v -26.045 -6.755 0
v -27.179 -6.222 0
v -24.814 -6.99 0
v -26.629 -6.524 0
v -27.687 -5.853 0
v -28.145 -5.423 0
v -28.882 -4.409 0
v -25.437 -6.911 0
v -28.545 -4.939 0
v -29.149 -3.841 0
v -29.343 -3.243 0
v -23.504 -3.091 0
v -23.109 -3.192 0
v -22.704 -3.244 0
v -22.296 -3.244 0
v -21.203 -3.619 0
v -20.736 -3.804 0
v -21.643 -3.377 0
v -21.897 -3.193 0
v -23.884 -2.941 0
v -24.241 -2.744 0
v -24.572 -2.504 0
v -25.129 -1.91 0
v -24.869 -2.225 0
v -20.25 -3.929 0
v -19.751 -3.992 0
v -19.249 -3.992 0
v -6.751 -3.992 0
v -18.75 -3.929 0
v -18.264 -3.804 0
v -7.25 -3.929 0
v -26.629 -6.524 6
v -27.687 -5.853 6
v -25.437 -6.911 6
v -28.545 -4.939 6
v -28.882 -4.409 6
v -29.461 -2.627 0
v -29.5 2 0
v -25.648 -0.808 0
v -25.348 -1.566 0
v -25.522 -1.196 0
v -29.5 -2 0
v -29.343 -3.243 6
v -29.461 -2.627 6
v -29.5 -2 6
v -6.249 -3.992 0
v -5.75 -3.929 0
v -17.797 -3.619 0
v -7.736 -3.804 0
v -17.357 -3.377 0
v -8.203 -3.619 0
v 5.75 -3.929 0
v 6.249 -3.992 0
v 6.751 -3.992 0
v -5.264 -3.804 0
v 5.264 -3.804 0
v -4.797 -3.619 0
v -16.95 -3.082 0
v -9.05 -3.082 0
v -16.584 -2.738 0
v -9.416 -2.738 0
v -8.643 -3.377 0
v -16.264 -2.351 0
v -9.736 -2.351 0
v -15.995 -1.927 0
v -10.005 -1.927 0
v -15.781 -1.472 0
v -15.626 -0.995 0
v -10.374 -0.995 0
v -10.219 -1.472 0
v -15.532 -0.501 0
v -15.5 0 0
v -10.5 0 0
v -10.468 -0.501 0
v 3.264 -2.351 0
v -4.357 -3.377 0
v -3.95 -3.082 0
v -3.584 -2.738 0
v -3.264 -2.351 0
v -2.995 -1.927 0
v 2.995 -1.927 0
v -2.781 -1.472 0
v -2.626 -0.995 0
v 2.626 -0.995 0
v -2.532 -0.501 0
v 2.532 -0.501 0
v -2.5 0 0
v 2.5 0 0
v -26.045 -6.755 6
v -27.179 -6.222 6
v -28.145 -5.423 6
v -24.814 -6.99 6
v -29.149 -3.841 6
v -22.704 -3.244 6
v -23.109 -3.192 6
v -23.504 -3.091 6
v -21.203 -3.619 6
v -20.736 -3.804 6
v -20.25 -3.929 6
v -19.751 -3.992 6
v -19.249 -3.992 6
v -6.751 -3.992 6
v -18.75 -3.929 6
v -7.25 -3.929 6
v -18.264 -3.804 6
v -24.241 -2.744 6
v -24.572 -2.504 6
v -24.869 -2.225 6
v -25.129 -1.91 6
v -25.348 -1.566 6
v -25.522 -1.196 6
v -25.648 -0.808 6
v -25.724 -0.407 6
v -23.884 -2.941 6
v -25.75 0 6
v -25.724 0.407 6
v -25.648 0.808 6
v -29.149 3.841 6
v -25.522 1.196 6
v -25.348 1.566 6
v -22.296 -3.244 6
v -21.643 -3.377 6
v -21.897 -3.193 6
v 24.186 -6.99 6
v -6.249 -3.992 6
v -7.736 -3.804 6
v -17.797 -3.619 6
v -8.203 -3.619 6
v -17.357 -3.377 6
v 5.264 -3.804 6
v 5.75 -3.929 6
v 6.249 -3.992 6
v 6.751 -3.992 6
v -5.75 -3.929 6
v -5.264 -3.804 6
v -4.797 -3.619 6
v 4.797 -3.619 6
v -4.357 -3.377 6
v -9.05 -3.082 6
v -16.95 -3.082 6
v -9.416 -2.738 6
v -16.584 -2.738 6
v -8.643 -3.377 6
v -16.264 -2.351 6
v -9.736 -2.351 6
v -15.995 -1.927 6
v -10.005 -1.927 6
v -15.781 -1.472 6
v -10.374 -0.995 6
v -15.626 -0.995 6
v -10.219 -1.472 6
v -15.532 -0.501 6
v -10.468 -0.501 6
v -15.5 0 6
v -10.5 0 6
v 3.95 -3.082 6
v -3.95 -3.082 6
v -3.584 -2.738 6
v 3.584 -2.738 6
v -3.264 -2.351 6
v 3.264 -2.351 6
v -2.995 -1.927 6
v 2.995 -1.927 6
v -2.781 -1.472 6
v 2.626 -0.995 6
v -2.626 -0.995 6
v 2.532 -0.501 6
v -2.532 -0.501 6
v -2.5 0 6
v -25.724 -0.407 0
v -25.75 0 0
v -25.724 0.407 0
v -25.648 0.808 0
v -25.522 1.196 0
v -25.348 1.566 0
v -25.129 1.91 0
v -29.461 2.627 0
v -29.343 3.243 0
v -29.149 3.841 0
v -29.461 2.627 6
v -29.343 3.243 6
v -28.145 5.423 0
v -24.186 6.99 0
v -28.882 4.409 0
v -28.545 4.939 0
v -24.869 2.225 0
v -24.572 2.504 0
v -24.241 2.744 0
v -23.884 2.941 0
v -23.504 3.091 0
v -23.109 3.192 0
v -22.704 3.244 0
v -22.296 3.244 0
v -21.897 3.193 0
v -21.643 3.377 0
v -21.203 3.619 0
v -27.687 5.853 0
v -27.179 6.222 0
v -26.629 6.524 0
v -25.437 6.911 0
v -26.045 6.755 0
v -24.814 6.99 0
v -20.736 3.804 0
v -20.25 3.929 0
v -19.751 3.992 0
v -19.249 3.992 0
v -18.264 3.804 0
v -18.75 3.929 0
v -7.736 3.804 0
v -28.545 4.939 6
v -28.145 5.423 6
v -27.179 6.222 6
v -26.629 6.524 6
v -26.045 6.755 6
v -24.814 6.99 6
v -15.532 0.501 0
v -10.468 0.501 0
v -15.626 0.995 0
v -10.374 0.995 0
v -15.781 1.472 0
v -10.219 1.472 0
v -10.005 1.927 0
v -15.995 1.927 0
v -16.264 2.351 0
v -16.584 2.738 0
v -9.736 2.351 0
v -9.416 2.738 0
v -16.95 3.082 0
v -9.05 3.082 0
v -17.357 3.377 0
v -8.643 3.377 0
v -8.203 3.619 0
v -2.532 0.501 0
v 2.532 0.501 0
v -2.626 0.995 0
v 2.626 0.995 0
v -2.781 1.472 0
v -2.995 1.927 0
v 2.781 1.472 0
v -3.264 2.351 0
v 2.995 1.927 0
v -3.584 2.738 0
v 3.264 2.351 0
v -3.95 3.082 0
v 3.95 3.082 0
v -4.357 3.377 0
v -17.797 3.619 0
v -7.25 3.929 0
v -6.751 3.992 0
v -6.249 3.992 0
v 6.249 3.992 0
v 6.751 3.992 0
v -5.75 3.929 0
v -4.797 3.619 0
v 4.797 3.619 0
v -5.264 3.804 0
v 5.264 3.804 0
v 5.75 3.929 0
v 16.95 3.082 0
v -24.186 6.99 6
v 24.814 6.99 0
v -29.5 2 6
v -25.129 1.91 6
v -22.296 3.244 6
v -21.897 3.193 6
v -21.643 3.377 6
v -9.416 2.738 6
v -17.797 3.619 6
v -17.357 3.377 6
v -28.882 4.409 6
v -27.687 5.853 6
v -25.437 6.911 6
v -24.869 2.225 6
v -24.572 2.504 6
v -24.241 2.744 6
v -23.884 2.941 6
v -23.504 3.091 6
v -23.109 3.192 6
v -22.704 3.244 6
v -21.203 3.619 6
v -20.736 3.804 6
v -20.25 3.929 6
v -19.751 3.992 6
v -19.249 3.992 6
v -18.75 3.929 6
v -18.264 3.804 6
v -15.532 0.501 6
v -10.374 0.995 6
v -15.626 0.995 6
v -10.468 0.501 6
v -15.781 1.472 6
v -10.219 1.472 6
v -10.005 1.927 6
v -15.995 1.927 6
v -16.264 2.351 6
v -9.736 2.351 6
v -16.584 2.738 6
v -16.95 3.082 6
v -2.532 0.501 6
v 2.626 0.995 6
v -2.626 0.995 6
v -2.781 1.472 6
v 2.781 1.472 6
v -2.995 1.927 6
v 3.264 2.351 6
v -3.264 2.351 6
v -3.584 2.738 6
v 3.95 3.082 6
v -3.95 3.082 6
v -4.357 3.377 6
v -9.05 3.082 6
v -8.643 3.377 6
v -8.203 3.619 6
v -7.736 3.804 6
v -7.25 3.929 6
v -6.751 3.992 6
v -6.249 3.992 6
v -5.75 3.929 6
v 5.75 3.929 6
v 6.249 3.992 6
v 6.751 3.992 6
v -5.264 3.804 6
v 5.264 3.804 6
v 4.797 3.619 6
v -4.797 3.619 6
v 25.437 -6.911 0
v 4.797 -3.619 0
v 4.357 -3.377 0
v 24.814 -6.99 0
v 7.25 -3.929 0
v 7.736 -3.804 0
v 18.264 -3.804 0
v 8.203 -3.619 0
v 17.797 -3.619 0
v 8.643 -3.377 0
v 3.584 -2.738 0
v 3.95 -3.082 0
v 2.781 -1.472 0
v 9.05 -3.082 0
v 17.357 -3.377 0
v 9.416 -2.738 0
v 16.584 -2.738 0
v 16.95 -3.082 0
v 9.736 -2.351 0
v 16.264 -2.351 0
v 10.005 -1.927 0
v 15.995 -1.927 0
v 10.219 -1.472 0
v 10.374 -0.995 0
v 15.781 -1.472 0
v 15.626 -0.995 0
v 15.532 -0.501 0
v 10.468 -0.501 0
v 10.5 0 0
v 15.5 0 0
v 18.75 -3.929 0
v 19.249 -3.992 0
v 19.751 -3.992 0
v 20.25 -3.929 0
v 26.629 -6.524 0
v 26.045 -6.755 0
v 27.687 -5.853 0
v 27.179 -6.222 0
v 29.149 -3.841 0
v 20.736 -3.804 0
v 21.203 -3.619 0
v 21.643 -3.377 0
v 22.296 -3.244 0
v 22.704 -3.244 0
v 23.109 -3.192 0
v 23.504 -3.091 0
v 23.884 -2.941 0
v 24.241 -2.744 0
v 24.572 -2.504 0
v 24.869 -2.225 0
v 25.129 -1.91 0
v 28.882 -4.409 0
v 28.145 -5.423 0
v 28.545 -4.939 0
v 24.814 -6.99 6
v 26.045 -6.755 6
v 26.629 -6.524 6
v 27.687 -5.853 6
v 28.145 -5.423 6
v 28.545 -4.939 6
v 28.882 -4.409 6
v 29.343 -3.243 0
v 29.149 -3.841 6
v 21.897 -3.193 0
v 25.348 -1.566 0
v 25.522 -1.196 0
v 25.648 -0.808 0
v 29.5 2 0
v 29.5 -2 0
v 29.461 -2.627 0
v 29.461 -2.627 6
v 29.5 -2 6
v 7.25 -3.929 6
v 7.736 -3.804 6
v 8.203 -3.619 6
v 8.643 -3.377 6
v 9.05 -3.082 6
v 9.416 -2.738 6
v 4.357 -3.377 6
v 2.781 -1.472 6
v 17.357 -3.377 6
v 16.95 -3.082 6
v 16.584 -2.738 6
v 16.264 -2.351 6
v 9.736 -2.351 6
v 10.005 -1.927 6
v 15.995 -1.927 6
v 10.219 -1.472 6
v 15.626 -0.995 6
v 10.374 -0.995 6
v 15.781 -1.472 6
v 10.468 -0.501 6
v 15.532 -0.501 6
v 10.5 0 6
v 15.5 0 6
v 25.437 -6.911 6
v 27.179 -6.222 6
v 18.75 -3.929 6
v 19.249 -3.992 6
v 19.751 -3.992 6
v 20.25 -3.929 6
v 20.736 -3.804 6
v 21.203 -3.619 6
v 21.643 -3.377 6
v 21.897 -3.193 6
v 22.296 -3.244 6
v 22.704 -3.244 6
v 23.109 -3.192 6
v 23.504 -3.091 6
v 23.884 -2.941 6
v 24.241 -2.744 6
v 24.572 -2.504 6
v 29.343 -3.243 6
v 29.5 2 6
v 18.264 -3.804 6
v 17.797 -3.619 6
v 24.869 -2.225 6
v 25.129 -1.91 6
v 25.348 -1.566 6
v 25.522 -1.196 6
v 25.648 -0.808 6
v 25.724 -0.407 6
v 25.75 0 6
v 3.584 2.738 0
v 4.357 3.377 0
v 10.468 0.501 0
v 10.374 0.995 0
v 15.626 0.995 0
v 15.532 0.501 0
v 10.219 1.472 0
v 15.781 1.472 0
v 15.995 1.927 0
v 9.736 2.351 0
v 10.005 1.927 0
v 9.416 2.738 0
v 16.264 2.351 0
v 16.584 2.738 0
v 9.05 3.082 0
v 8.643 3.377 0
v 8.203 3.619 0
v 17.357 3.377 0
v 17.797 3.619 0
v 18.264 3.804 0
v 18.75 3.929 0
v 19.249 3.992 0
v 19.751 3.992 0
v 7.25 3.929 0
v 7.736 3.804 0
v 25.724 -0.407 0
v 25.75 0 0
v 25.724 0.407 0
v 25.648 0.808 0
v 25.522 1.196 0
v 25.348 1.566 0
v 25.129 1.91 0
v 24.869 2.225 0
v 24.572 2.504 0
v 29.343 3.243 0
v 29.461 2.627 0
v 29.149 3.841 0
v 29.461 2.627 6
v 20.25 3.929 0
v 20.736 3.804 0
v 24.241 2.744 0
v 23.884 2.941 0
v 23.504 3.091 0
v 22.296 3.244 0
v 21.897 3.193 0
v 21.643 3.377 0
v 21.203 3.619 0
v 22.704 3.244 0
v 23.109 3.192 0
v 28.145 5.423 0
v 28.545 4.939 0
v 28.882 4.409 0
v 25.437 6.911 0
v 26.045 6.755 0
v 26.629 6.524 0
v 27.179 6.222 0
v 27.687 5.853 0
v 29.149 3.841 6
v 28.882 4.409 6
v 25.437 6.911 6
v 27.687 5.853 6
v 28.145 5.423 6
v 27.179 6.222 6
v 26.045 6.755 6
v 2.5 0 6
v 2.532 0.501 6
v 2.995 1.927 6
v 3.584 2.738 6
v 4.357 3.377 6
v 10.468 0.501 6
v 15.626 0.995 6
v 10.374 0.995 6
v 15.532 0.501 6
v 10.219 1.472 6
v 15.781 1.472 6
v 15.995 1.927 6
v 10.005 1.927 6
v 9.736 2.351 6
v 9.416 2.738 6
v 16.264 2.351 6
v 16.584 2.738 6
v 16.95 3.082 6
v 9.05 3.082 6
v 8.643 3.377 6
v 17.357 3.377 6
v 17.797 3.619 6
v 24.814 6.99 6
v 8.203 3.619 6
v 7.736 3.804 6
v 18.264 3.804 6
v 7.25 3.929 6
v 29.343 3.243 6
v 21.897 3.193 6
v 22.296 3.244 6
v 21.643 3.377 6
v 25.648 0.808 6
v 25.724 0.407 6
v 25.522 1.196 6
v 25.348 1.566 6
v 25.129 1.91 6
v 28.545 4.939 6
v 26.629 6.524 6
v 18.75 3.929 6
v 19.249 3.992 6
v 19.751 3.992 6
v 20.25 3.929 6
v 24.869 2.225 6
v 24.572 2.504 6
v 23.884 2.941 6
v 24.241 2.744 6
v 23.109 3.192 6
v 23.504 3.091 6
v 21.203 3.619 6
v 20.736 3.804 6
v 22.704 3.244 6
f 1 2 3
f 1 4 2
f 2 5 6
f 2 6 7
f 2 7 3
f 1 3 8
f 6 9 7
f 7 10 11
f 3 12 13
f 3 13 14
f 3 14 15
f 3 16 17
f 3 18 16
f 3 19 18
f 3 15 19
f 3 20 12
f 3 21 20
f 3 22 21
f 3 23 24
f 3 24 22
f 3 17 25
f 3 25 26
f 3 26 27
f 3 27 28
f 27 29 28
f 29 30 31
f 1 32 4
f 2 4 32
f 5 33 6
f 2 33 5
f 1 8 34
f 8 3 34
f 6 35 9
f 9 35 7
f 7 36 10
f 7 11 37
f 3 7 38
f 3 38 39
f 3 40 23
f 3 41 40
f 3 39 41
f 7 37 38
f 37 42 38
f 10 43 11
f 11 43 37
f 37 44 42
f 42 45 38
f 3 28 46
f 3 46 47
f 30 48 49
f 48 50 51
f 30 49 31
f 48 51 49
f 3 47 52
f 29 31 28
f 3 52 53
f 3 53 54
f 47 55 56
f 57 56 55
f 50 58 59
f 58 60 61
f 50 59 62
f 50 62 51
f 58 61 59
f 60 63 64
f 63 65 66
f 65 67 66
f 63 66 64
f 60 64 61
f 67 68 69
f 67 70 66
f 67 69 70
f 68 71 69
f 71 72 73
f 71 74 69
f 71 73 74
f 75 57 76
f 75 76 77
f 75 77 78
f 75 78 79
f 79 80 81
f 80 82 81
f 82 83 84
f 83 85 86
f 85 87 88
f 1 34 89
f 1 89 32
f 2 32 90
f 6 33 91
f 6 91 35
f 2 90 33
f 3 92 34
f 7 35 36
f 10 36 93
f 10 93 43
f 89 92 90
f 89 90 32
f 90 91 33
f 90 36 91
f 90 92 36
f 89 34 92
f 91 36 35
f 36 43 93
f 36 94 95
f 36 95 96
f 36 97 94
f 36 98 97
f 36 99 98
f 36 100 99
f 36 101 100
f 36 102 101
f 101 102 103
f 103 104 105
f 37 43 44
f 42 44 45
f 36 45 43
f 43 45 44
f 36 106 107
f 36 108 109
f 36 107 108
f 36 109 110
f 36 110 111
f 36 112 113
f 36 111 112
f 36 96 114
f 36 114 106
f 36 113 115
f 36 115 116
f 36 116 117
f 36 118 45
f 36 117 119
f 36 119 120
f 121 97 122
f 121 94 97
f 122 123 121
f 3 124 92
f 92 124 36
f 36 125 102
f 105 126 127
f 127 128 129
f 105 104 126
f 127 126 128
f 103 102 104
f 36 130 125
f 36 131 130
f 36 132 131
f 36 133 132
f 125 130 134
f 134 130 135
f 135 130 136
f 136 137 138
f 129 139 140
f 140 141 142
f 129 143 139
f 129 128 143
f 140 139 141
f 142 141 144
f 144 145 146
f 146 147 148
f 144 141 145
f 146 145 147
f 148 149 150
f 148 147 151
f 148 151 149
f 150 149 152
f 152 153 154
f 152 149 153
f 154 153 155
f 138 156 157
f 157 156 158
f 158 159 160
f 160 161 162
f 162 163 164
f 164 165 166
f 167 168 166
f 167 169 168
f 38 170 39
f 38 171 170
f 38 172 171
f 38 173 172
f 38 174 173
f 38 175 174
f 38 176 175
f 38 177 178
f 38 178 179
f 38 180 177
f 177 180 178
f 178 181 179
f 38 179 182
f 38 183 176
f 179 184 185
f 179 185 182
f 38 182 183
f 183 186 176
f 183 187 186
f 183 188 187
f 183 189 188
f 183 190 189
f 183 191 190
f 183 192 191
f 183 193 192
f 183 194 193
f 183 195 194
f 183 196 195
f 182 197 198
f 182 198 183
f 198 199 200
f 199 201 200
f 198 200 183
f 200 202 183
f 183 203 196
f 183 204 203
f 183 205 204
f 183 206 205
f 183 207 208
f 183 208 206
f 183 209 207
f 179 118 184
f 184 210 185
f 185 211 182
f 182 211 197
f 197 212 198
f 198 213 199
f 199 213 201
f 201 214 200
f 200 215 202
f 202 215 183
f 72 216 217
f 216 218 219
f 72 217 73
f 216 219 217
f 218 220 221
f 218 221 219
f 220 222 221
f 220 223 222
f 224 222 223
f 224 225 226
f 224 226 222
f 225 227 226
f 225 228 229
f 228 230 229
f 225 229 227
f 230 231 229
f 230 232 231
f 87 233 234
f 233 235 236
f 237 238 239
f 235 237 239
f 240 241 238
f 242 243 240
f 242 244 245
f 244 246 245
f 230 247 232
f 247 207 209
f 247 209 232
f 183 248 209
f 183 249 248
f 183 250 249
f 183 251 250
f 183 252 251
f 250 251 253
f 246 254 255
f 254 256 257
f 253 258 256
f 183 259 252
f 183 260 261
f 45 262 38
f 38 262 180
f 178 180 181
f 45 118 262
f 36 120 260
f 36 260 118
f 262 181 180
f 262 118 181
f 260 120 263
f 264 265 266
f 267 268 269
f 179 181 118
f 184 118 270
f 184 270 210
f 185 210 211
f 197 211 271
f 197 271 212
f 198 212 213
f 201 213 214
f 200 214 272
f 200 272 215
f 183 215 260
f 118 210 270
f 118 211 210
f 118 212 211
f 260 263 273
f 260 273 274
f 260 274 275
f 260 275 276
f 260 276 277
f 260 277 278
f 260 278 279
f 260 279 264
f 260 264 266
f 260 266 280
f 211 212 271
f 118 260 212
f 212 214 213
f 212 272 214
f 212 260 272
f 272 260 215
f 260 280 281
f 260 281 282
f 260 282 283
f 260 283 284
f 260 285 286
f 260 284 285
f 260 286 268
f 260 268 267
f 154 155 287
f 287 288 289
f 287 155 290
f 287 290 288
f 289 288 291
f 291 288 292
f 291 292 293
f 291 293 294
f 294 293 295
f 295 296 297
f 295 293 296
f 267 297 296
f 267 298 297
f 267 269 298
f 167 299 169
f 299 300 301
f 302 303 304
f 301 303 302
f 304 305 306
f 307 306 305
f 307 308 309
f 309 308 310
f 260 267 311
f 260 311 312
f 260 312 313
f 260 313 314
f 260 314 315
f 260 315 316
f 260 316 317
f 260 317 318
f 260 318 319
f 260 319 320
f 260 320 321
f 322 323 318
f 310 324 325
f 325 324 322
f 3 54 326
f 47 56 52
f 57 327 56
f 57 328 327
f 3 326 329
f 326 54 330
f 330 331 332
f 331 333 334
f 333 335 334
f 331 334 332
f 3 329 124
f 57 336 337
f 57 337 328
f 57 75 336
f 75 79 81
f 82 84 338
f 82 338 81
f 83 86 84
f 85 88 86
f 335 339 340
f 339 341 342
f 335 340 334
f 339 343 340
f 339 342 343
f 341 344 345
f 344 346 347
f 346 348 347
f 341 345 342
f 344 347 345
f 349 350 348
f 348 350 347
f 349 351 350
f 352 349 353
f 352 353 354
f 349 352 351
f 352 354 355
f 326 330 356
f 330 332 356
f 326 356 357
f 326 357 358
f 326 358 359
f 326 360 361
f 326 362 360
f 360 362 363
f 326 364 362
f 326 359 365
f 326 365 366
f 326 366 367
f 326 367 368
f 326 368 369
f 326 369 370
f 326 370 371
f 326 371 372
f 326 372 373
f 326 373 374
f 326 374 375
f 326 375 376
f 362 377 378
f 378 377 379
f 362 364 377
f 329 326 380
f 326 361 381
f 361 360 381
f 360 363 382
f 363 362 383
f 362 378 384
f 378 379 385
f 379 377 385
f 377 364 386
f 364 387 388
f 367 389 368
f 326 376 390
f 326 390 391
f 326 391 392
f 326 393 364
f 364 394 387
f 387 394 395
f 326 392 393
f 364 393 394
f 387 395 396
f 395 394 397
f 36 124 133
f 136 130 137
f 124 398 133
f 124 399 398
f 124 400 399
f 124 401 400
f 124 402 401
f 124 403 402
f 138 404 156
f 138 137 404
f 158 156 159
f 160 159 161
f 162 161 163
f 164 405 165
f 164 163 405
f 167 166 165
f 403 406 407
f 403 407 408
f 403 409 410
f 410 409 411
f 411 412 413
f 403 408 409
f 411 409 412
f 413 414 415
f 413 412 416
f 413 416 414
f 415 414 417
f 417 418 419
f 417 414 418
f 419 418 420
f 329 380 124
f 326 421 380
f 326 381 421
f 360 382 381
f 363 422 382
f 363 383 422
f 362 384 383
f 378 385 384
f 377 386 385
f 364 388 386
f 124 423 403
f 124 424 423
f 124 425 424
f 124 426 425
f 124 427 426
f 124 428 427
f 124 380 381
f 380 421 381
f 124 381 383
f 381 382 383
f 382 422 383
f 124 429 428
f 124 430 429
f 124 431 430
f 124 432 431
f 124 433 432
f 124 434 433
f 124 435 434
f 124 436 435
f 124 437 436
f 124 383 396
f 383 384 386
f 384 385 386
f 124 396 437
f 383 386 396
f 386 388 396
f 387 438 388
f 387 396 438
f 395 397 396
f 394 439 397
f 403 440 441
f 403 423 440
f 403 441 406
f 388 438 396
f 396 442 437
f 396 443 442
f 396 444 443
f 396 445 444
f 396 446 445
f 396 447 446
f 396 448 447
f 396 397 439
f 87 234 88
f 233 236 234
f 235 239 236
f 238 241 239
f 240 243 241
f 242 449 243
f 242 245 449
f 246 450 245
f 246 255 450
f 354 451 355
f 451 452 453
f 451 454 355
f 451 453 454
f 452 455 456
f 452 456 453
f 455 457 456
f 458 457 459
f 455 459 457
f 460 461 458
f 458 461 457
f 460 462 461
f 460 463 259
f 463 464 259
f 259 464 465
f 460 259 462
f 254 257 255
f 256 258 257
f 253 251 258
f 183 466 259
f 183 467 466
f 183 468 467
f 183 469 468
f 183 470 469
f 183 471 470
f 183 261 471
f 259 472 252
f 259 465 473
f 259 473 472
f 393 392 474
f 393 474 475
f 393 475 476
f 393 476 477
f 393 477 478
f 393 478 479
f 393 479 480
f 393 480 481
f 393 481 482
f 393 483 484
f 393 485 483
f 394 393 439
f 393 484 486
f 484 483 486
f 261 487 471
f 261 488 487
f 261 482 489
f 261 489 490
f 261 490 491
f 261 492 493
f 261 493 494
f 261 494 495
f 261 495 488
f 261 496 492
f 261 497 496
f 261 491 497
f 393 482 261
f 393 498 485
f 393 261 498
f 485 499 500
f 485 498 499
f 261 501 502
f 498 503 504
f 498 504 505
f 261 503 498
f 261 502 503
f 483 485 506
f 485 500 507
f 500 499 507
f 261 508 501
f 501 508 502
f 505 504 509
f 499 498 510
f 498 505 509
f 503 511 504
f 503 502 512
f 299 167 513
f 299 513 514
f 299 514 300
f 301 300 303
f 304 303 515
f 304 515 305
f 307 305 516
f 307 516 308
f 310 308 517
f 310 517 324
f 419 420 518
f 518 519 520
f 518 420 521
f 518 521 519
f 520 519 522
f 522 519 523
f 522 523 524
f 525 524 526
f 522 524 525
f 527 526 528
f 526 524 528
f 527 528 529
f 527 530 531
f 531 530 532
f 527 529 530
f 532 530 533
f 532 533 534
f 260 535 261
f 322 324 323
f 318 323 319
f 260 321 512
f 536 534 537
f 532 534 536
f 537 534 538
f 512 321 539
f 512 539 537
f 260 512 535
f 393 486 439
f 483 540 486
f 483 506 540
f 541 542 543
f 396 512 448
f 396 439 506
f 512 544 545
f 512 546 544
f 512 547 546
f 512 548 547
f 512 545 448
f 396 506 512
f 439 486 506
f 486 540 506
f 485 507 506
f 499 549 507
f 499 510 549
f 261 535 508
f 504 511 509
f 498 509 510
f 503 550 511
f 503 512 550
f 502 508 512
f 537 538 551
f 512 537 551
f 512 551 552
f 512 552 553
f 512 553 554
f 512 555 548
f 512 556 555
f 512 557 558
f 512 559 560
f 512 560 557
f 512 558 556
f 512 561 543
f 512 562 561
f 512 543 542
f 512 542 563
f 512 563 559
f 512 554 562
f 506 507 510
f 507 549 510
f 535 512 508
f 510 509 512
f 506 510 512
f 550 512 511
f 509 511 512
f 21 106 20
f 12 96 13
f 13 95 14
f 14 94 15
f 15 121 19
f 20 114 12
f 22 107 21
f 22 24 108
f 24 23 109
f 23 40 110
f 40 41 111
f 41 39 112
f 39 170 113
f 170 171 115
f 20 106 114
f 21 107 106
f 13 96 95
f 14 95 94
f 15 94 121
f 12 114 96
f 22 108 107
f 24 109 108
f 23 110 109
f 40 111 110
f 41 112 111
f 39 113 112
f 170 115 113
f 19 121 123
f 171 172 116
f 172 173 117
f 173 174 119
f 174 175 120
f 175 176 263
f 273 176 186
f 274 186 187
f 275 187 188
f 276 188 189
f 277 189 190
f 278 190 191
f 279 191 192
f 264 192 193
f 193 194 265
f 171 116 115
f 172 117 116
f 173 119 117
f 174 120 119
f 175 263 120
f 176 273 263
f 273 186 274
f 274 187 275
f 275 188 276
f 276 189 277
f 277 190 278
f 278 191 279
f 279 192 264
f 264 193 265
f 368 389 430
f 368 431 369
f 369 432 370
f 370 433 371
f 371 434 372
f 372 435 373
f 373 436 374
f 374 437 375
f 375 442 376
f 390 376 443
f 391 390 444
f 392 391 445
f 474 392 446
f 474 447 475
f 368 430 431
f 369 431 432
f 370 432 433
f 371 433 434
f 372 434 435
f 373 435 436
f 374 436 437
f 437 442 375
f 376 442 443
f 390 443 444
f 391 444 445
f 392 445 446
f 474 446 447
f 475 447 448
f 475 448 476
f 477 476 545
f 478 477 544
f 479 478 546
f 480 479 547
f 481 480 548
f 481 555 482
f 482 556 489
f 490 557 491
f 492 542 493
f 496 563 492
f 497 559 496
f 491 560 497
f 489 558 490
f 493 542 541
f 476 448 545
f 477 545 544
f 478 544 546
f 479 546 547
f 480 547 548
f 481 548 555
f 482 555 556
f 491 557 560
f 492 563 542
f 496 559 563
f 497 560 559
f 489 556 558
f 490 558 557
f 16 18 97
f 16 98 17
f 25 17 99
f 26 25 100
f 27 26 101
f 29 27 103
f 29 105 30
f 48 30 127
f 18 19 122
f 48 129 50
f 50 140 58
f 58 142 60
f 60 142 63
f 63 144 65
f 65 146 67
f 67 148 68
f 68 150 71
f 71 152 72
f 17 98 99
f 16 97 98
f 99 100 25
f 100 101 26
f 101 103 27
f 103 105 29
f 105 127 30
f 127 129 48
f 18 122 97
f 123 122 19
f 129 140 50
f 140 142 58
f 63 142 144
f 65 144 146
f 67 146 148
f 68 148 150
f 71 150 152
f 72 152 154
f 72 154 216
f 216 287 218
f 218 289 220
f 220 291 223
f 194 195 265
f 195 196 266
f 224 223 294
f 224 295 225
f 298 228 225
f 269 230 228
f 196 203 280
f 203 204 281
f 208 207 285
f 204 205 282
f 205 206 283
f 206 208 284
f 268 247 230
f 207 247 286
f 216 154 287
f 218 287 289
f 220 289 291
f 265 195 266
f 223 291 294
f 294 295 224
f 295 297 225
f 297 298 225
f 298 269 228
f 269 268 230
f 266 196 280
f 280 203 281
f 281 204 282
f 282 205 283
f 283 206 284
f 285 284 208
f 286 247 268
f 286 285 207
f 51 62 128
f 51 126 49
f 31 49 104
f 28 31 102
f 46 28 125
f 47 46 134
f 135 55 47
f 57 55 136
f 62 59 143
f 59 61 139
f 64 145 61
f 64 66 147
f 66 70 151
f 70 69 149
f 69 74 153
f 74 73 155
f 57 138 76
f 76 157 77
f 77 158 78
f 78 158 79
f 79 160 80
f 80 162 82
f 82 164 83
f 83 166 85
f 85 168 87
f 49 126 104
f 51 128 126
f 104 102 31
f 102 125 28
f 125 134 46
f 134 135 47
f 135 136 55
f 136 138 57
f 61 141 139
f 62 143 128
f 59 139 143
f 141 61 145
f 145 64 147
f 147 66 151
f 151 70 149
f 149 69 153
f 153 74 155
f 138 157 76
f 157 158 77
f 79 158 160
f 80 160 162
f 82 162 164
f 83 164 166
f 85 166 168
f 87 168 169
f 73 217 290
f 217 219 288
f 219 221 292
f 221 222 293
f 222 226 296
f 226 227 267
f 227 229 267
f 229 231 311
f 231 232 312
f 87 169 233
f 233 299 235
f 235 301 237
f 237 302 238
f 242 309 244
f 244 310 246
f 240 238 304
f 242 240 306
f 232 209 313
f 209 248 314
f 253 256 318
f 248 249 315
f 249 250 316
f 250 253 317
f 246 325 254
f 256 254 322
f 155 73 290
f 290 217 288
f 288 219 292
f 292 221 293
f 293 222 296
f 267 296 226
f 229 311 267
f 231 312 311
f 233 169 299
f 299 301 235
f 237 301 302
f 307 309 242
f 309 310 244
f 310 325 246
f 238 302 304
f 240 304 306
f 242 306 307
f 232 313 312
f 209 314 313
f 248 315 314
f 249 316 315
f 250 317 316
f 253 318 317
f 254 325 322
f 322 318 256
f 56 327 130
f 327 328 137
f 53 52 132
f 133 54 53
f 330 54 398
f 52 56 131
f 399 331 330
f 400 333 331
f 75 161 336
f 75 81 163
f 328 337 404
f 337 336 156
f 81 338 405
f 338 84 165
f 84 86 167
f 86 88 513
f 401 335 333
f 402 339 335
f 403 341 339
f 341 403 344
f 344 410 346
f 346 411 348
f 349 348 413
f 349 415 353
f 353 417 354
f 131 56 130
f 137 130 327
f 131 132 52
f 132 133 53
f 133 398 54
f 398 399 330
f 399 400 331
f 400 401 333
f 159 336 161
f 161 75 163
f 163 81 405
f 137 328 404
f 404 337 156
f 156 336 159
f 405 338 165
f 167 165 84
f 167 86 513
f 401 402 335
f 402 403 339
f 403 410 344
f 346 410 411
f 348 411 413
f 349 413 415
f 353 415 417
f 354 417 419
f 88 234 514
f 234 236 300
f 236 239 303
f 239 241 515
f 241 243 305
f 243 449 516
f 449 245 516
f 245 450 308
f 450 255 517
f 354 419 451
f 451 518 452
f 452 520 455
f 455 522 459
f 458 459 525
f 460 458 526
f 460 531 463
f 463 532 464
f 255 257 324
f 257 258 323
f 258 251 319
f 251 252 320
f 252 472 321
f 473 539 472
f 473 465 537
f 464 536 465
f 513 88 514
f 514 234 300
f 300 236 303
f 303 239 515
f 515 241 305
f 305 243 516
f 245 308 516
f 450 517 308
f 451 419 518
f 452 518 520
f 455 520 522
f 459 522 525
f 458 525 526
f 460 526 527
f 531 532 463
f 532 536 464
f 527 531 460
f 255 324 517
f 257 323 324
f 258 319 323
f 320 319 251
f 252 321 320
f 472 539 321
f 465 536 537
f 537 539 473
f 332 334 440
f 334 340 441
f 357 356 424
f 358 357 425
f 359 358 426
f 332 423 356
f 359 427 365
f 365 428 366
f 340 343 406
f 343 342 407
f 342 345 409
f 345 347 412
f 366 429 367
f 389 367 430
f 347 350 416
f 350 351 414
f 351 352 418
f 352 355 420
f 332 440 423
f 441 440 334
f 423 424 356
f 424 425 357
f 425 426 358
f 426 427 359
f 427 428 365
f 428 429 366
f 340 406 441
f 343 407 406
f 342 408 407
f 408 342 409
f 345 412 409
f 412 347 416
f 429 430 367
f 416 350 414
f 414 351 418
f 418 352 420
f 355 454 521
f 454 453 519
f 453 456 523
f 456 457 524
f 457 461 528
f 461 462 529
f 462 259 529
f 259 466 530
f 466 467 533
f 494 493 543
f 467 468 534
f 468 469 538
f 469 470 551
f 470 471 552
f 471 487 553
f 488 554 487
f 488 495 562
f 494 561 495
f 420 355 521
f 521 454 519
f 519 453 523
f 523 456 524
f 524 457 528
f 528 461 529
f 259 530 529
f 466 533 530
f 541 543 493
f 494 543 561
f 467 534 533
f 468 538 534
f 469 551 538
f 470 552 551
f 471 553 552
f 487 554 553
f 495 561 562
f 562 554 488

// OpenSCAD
$fn = 50;

difference() {
	union() {
		hull() {
			translate(v = [-24.5, 2.0, 0]) {
				cylinder(h = 6, r = 5);
			}
			translate(v = [24.5, 2.0, 0]) {
				cylinder(h = 6, r = 5);
			}
			translate(v = [-24.5, -2.0, 0]) {
				cylinder(h = 6, r = 5);
			}
			translate(v = [24.5, -2.0, 0]) {
				cylinder(h = 6, r = 5);
			}
		}
	}
	union() {
		translate(v = [-22.5, 0.0, -100.0]) {
			cylinder(h = 200, r = 3.25);
		}
		translate(v = [22.5, 0.0, -100.0]) {
			cylinder(h = 200, r = 3.25);
		}
		translate(v = [-22.5, 0.0, -100.0]) {
			cylinder(h = 200, r = 1.8);
		}
		translate(v = [22.5, 0.0, -100.0]) {
			cylinder(h = 200, r = 1.8);
		}
		translate(v = [-19.5, 0, 0.0]) {
			cylinder(h = 6, r = 4.0);
		}
		translate(v = [-6.5, 0, 0.0]) {
			cylinder(h = 6, r = 4.0);
		}
		translate(v = [6.5, 0, 0.0]) {
			cylinder(h = 6, r = 4.0);
		}
		translate(v = [19.5, 0, 0.0]) {
			cylinder(h = 6, r = 4.0);
		}
	}
}
